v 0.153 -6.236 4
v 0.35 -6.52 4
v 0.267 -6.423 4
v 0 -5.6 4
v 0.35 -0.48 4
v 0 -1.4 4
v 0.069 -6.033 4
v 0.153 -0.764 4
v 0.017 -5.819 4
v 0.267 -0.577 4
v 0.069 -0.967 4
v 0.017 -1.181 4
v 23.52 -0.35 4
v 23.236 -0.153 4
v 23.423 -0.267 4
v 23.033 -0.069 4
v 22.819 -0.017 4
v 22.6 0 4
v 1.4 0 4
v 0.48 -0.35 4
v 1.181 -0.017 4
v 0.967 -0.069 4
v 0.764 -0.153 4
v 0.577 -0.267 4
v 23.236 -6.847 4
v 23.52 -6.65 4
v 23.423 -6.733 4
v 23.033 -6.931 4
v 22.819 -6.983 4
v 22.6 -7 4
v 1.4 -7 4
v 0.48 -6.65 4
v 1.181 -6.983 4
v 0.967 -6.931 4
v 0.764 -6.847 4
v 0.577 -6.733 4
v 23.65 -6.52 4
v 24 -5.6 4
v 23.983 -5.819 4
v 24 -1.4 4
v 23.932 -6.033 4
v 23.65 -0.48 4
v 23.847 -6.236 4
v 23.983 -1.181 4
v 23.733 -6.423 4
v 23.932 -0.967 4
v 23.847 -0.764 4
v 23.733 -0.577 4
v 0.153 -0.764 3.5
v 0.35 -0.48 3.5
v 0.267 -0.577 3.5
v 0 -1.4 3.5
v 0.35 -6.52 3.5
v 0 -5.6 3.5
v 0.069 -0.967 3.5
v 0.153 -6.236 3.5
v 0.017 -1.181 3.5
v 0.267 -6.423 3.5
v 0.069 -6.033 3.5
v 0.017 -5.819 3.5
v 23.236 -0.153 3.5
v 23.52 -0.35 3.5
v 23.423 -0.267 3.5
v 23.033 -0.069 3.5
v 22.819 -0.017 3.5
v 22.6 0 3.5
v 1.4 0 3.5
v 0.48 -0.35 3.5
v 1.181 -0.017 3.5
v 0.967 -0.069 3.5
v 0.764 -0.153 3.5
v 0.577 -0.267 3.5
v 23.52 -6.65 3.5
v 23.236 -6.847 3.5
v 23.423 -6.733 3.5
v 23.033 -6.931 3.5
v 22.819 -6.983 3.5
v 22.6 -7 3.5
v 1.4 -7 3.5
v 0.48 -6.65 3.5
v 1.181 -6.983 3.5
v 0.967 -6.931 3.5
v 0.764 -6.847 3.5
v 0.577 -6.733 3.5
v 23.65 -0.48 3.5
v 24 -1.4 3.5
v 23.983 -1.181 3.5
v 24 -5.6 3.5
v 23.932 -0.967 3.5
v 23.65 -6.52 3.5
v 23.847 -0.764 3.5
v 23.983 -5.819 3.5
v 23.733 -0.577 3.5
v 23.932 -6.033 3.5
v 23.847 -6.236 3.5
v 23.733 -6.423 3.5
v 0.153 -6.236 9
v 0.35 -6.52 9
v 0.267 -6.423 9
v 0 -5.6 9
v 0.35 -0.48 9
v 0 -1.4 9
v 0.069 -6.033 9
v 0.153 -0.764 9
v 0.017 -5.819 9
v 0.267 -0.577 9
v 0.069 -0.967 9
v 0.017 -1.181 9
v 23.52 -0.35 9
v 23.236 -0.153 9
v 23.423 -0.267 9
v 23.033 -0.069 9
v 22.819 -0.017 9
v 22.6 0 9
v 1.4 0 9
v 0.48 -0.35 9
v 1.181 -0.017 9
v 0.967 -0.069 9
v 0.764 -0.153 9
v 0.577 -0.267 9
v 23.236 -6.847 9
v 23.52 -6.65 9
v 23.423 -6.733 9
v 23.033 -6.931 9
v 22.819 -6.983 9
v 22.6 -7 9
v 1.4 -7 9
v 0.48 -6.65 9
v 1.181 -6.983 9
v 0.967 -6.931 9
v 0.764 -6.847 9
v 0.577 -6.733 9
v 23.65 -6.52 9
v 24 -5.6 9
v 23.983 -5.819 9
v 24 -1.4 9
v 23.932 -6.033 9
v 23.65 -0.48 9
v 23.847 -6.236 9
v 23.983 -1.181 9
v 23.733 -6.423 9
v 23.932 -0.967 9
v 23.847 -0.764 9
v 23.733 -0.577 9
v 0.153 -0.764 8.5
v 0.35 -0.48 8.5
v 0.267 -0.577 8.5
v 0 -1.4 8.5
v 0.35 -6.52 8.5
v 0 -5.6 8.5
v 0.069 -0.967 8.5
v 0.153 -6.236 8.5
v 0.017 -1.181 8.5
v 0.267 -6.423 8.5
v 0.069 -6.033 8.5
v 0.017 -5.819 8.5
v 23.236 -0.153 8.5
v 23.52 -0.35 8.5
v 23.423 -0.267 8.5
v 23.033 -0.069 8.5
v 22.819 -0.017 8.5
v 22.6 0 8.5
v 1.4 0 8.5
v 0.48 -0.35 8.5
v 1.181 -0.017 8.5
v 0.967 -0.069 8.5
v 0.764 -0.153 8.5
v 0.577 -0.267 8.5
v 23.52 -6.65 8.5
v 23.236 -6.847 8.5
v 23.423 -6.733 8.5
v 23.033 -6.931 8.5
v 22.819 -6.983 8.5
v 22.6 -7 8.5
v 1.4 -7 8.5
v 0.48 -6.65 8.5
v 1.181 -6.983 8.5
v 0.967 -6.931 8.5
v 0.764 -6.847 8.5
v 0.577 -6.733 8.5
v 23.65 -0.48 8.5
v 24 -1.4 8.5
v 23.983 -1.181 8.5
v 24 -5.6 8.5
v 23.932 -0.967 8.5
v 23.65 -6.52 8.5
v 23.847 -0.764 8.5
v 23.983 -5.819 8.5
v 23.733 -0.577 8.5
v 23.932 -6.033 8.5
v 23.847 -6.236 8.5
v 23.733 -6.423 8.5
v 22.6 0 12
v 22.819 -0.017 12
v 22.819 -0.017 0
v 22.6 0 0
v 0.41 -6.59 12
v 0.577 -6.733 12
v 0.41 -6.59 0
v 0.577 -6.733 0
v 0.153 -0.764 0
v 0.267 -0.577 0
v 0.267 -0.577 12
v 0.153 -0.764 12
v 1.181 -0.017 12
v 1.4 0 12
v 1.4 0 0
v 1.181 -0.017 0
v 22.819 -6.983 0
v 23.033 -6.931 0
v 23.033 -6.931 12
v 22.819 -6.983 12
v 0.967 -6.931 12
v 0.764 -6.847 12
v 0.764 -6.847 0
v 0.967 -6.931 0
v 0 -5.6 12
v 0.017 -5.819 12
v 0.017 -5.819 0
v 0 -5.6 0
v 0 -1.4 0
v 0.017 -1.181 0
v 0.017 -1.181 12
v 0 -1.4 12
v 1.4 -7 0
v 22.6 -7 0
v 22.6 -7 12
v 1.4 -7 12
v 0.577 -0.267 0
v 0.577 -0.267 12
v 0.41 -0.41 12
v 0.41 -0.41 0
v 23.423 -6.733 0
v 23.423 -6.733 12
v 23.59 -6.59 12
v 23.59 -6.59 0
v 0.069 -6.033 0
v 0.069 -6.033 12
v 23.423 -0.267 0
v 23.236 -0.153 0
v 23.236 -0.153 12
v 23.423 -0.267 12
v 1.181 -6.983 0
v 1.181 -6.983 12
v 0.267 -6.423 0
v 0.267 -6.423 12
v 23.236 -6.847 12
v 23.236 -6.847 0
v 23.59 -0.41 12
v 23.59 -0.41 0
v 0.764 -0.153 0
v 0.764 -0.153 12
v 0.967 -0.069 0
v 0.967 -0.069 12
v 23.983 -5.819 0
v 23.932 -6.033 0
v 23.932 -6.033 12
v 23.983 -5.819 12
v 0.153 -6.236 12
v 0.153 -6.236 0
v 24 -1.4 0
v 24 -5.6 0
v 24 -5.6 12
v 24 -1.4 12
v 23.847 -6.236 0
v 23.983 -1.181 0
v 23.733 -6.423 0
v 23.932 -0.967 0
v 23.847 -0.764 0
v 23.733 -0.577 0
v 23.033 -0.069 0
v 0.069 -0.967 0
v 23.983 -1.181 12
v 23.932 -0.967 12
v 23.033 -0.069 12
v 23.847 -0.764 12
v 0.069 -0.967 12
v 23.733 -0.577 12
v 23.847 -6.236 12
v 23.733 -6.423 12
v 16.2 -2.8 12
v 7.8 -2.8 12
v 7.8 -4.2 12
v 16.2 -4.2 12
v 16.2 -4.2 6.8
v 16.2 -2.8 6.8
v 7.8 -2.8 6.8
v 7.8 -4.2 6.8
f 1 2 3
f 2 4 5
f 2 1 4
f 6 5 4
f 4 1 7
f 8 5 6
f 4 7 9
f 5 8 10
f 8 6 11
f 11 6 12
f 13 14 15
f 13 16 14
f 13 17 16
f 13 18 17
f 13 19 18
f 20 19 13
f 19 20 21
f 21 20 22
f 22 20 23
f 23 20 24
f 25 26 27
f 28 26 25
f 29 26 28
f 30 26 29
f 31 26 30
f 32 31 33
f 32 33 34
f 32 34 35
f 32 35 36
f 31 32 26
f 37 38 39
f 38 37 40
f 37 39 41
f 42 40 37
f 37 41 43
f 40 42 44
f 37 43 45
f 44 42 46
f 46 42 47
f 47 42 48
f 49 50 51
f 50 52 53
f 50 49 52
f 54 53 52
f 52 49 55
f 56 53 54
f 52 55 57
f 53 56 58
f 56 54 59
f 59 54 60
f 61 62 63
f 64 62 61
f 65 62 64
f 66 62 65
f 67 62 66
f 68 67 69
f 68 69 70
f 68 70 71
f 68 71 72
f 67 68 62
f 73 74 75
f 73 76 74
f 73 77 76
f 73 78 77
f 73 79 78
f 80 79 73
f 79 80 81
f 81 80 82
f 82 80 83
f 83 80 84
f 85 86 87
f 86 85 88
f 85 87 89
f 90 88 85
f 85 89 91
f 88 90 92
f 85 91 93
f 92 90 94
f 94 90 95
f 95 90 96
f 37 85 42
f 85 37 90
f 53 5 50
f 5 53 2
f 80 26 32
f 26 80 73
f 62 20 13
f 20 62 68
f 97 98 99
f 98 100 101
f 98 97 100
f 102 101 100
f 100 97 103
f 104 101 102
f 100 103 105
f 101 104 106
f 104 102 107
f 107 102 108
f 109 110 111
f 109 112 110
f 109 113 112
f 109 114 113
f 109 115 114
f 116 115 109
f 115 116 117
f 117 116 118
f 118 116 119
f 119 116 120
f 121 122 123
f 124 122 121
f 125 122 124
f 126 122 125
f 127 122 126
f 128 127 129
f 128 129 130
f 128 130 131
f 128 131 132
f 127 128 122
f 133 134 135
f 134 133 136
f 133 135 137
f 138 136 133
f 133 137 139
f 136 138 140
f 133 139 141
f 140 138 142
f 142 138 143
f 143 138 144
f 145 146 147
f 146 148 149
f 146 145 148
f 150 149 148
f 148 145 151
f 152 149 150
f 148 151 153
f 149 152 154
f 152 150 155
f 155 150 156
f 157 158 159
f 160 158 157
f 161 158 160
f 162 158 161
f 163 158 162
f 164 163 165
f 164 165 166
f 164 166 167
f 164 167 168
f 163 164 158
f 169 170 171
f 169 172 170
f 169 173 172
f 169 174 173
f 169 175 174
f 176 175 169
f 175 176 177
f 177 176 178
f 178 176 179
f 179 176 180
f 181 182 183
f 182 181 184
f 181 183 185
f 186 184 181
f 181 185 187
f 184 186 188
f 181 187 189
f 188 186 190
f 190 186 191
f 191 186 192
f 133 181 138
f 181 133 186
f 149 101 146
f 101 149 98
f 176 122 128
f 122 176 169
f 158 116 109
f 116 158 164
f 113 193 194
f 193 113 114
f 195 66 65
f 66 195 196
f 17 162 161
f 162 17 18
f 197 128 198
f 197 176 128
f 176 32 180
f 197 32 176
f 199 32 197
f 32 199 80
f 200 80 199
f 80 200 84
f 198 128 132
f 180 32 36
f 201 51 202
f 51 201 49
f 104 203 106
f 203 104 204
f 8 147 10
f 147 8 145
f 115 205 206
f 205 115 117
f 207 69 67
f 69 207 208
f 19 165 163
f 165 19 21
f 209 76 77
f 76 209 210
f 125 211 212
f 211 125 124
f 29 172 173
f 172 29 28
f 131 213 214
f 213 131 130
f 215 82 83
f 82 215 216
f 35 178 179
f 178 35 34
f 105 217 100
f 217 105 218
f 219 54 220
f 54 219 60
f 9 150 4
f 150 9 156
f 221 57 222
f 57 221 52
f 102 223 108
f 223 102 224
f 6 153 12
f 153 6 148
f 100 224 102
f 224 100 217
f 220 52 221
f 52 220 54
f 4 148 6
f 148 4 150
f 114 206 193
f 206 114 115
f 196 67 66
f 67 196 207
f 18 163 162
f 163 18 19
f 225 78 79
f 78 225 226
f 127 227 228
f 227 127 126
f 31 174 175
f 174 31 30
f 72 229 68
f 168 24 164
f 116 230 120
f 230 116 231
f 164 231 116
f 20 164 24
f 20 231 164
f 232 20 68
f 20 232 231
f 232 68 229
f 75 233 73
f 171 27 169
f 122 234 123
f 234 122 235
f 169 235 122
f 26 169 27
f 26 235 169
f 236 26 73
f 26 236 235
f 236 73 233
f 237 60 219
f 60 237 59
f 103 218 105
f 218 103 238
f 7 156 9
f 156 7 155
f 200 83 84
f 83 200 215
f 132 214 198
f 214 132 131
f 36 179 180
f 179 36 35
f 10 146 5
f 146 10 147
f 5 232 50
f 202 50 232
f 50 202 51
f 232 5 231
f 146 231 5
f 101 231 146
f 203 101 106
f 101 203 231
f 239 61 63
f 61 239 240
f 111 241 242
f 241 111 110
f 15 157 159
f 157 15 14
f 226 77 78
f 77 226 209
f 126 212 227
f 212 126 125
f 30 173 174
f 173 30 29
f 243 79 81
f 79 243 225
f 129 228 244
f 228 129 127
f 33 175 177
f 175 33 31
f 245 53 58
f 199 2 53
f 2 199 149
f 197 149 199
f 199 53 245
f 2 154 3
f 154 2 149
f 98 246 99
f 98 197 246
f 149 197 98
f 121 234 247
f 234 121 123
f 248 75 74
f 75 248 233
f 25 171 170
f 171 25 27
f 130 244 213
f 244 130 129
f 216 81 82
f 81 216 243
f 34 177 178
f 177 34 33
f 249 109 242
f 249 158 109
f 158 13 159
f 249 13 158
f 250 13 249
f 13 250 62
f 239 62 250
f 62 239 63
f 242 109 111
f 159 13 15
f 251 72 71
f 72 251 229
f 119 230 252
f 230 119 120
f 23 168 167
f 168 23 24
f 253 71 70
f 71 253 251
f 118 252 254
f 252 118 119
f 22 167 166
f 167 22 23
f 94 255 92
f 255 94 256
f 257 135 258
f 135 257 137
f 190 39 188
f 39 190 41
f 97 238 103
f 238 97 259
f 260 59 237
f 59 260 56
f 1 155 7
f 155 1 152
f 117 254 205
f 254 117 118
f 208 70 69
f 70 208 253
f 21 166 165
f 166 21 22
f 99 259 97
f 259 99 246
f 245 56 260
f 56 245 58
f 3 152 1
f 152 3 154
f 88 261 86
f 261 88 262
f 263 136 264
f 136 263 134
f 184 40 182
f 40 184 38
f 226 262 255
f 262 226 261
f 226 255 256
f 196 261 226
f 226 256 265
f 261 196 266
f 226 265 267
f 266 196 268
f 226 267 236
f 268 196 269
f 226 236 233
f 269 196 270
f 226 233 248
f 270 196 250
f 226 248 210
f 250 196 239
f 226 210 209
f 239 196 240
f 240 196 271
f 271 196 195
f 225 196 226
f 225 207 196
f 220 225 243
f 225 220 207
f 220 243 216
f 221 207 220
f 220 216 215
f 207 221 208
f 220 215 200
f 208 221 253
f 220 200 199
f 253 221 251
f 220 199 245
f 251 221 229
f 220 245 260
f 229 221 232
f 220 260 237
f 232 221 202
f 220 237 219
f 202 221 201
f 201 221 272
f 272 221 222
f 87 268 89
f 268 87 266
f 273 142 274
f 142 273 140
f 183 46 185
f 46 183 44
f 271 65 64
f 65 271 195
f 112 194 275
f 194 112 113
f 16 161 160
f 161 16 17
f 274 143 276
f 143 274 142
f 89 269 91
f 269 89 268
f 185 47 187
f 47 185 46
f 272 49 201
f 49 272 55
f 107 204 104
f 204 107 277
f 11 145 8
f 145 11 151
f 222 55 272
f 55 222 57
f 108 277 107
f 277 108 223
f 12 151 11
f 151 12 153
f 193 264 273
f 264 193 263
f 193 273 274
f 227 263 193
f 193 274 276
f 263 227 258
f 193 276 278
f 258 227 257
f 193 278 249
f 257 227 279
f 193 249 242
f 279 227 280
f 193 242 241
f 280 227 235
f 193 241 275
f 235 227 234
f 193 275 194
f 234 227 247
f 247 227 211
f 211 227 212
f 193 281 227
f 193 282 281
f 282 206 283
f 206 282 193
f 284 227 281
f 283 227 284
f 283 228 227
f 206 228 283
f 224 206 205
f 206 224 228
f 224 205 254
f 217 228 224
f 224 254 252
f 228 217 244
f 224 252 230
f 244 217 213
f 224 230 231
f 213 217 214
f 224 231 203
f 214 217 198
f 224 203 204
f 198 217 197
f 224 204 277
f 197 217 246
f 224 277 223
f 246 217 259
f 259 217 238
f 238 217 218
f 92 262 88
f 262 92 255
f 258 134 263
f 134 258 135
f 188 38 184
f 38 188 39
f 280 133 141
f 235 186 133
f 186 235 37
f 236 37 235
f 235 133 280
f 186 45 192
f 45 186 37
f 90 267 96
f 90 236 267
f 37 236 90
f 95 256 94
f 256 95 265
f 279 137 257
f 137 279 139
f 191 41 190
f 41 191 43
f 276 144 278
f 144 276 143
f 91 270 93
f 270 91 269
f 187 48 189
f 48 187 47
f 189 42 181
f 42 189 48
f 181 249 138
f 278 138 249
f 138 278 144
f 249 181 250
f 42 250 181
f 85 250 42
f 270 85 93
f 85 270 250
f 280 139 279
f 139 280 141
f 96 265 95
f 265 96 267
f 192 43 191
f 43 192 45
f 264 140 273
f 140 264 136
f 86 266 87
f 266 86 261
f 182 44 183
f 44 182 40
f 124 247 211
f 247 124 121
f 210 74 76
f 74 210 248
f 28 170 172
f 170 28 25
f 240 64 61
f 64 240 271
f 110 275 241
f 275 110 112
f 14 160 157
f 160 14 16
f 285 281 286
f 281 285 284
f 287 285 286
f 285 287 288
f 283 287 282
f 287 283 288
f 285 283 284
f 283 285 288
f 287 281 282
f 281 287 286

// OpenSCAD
// Plant_Pot_02.stl  -  Store Versile room frame (Rev C)
// Quantity: 1   Filament: White (e.g. PLA Basic Jade White / Matte Ivory White)
// Print: layer 0.12 mm, infill 15%, 3 walls, brim 0 mm, NO supports
// Orientation: flat  (as installed)
//
// The library draws parts with their front toward +Y; mirror([0,1,0]) makes the real
// part face the viewer correctly (see build.py). Edit dimensions in versile_parts.scad.
use <../versile_parts.scad>

mirror([0, 1, 0]) plant_pot_02();
